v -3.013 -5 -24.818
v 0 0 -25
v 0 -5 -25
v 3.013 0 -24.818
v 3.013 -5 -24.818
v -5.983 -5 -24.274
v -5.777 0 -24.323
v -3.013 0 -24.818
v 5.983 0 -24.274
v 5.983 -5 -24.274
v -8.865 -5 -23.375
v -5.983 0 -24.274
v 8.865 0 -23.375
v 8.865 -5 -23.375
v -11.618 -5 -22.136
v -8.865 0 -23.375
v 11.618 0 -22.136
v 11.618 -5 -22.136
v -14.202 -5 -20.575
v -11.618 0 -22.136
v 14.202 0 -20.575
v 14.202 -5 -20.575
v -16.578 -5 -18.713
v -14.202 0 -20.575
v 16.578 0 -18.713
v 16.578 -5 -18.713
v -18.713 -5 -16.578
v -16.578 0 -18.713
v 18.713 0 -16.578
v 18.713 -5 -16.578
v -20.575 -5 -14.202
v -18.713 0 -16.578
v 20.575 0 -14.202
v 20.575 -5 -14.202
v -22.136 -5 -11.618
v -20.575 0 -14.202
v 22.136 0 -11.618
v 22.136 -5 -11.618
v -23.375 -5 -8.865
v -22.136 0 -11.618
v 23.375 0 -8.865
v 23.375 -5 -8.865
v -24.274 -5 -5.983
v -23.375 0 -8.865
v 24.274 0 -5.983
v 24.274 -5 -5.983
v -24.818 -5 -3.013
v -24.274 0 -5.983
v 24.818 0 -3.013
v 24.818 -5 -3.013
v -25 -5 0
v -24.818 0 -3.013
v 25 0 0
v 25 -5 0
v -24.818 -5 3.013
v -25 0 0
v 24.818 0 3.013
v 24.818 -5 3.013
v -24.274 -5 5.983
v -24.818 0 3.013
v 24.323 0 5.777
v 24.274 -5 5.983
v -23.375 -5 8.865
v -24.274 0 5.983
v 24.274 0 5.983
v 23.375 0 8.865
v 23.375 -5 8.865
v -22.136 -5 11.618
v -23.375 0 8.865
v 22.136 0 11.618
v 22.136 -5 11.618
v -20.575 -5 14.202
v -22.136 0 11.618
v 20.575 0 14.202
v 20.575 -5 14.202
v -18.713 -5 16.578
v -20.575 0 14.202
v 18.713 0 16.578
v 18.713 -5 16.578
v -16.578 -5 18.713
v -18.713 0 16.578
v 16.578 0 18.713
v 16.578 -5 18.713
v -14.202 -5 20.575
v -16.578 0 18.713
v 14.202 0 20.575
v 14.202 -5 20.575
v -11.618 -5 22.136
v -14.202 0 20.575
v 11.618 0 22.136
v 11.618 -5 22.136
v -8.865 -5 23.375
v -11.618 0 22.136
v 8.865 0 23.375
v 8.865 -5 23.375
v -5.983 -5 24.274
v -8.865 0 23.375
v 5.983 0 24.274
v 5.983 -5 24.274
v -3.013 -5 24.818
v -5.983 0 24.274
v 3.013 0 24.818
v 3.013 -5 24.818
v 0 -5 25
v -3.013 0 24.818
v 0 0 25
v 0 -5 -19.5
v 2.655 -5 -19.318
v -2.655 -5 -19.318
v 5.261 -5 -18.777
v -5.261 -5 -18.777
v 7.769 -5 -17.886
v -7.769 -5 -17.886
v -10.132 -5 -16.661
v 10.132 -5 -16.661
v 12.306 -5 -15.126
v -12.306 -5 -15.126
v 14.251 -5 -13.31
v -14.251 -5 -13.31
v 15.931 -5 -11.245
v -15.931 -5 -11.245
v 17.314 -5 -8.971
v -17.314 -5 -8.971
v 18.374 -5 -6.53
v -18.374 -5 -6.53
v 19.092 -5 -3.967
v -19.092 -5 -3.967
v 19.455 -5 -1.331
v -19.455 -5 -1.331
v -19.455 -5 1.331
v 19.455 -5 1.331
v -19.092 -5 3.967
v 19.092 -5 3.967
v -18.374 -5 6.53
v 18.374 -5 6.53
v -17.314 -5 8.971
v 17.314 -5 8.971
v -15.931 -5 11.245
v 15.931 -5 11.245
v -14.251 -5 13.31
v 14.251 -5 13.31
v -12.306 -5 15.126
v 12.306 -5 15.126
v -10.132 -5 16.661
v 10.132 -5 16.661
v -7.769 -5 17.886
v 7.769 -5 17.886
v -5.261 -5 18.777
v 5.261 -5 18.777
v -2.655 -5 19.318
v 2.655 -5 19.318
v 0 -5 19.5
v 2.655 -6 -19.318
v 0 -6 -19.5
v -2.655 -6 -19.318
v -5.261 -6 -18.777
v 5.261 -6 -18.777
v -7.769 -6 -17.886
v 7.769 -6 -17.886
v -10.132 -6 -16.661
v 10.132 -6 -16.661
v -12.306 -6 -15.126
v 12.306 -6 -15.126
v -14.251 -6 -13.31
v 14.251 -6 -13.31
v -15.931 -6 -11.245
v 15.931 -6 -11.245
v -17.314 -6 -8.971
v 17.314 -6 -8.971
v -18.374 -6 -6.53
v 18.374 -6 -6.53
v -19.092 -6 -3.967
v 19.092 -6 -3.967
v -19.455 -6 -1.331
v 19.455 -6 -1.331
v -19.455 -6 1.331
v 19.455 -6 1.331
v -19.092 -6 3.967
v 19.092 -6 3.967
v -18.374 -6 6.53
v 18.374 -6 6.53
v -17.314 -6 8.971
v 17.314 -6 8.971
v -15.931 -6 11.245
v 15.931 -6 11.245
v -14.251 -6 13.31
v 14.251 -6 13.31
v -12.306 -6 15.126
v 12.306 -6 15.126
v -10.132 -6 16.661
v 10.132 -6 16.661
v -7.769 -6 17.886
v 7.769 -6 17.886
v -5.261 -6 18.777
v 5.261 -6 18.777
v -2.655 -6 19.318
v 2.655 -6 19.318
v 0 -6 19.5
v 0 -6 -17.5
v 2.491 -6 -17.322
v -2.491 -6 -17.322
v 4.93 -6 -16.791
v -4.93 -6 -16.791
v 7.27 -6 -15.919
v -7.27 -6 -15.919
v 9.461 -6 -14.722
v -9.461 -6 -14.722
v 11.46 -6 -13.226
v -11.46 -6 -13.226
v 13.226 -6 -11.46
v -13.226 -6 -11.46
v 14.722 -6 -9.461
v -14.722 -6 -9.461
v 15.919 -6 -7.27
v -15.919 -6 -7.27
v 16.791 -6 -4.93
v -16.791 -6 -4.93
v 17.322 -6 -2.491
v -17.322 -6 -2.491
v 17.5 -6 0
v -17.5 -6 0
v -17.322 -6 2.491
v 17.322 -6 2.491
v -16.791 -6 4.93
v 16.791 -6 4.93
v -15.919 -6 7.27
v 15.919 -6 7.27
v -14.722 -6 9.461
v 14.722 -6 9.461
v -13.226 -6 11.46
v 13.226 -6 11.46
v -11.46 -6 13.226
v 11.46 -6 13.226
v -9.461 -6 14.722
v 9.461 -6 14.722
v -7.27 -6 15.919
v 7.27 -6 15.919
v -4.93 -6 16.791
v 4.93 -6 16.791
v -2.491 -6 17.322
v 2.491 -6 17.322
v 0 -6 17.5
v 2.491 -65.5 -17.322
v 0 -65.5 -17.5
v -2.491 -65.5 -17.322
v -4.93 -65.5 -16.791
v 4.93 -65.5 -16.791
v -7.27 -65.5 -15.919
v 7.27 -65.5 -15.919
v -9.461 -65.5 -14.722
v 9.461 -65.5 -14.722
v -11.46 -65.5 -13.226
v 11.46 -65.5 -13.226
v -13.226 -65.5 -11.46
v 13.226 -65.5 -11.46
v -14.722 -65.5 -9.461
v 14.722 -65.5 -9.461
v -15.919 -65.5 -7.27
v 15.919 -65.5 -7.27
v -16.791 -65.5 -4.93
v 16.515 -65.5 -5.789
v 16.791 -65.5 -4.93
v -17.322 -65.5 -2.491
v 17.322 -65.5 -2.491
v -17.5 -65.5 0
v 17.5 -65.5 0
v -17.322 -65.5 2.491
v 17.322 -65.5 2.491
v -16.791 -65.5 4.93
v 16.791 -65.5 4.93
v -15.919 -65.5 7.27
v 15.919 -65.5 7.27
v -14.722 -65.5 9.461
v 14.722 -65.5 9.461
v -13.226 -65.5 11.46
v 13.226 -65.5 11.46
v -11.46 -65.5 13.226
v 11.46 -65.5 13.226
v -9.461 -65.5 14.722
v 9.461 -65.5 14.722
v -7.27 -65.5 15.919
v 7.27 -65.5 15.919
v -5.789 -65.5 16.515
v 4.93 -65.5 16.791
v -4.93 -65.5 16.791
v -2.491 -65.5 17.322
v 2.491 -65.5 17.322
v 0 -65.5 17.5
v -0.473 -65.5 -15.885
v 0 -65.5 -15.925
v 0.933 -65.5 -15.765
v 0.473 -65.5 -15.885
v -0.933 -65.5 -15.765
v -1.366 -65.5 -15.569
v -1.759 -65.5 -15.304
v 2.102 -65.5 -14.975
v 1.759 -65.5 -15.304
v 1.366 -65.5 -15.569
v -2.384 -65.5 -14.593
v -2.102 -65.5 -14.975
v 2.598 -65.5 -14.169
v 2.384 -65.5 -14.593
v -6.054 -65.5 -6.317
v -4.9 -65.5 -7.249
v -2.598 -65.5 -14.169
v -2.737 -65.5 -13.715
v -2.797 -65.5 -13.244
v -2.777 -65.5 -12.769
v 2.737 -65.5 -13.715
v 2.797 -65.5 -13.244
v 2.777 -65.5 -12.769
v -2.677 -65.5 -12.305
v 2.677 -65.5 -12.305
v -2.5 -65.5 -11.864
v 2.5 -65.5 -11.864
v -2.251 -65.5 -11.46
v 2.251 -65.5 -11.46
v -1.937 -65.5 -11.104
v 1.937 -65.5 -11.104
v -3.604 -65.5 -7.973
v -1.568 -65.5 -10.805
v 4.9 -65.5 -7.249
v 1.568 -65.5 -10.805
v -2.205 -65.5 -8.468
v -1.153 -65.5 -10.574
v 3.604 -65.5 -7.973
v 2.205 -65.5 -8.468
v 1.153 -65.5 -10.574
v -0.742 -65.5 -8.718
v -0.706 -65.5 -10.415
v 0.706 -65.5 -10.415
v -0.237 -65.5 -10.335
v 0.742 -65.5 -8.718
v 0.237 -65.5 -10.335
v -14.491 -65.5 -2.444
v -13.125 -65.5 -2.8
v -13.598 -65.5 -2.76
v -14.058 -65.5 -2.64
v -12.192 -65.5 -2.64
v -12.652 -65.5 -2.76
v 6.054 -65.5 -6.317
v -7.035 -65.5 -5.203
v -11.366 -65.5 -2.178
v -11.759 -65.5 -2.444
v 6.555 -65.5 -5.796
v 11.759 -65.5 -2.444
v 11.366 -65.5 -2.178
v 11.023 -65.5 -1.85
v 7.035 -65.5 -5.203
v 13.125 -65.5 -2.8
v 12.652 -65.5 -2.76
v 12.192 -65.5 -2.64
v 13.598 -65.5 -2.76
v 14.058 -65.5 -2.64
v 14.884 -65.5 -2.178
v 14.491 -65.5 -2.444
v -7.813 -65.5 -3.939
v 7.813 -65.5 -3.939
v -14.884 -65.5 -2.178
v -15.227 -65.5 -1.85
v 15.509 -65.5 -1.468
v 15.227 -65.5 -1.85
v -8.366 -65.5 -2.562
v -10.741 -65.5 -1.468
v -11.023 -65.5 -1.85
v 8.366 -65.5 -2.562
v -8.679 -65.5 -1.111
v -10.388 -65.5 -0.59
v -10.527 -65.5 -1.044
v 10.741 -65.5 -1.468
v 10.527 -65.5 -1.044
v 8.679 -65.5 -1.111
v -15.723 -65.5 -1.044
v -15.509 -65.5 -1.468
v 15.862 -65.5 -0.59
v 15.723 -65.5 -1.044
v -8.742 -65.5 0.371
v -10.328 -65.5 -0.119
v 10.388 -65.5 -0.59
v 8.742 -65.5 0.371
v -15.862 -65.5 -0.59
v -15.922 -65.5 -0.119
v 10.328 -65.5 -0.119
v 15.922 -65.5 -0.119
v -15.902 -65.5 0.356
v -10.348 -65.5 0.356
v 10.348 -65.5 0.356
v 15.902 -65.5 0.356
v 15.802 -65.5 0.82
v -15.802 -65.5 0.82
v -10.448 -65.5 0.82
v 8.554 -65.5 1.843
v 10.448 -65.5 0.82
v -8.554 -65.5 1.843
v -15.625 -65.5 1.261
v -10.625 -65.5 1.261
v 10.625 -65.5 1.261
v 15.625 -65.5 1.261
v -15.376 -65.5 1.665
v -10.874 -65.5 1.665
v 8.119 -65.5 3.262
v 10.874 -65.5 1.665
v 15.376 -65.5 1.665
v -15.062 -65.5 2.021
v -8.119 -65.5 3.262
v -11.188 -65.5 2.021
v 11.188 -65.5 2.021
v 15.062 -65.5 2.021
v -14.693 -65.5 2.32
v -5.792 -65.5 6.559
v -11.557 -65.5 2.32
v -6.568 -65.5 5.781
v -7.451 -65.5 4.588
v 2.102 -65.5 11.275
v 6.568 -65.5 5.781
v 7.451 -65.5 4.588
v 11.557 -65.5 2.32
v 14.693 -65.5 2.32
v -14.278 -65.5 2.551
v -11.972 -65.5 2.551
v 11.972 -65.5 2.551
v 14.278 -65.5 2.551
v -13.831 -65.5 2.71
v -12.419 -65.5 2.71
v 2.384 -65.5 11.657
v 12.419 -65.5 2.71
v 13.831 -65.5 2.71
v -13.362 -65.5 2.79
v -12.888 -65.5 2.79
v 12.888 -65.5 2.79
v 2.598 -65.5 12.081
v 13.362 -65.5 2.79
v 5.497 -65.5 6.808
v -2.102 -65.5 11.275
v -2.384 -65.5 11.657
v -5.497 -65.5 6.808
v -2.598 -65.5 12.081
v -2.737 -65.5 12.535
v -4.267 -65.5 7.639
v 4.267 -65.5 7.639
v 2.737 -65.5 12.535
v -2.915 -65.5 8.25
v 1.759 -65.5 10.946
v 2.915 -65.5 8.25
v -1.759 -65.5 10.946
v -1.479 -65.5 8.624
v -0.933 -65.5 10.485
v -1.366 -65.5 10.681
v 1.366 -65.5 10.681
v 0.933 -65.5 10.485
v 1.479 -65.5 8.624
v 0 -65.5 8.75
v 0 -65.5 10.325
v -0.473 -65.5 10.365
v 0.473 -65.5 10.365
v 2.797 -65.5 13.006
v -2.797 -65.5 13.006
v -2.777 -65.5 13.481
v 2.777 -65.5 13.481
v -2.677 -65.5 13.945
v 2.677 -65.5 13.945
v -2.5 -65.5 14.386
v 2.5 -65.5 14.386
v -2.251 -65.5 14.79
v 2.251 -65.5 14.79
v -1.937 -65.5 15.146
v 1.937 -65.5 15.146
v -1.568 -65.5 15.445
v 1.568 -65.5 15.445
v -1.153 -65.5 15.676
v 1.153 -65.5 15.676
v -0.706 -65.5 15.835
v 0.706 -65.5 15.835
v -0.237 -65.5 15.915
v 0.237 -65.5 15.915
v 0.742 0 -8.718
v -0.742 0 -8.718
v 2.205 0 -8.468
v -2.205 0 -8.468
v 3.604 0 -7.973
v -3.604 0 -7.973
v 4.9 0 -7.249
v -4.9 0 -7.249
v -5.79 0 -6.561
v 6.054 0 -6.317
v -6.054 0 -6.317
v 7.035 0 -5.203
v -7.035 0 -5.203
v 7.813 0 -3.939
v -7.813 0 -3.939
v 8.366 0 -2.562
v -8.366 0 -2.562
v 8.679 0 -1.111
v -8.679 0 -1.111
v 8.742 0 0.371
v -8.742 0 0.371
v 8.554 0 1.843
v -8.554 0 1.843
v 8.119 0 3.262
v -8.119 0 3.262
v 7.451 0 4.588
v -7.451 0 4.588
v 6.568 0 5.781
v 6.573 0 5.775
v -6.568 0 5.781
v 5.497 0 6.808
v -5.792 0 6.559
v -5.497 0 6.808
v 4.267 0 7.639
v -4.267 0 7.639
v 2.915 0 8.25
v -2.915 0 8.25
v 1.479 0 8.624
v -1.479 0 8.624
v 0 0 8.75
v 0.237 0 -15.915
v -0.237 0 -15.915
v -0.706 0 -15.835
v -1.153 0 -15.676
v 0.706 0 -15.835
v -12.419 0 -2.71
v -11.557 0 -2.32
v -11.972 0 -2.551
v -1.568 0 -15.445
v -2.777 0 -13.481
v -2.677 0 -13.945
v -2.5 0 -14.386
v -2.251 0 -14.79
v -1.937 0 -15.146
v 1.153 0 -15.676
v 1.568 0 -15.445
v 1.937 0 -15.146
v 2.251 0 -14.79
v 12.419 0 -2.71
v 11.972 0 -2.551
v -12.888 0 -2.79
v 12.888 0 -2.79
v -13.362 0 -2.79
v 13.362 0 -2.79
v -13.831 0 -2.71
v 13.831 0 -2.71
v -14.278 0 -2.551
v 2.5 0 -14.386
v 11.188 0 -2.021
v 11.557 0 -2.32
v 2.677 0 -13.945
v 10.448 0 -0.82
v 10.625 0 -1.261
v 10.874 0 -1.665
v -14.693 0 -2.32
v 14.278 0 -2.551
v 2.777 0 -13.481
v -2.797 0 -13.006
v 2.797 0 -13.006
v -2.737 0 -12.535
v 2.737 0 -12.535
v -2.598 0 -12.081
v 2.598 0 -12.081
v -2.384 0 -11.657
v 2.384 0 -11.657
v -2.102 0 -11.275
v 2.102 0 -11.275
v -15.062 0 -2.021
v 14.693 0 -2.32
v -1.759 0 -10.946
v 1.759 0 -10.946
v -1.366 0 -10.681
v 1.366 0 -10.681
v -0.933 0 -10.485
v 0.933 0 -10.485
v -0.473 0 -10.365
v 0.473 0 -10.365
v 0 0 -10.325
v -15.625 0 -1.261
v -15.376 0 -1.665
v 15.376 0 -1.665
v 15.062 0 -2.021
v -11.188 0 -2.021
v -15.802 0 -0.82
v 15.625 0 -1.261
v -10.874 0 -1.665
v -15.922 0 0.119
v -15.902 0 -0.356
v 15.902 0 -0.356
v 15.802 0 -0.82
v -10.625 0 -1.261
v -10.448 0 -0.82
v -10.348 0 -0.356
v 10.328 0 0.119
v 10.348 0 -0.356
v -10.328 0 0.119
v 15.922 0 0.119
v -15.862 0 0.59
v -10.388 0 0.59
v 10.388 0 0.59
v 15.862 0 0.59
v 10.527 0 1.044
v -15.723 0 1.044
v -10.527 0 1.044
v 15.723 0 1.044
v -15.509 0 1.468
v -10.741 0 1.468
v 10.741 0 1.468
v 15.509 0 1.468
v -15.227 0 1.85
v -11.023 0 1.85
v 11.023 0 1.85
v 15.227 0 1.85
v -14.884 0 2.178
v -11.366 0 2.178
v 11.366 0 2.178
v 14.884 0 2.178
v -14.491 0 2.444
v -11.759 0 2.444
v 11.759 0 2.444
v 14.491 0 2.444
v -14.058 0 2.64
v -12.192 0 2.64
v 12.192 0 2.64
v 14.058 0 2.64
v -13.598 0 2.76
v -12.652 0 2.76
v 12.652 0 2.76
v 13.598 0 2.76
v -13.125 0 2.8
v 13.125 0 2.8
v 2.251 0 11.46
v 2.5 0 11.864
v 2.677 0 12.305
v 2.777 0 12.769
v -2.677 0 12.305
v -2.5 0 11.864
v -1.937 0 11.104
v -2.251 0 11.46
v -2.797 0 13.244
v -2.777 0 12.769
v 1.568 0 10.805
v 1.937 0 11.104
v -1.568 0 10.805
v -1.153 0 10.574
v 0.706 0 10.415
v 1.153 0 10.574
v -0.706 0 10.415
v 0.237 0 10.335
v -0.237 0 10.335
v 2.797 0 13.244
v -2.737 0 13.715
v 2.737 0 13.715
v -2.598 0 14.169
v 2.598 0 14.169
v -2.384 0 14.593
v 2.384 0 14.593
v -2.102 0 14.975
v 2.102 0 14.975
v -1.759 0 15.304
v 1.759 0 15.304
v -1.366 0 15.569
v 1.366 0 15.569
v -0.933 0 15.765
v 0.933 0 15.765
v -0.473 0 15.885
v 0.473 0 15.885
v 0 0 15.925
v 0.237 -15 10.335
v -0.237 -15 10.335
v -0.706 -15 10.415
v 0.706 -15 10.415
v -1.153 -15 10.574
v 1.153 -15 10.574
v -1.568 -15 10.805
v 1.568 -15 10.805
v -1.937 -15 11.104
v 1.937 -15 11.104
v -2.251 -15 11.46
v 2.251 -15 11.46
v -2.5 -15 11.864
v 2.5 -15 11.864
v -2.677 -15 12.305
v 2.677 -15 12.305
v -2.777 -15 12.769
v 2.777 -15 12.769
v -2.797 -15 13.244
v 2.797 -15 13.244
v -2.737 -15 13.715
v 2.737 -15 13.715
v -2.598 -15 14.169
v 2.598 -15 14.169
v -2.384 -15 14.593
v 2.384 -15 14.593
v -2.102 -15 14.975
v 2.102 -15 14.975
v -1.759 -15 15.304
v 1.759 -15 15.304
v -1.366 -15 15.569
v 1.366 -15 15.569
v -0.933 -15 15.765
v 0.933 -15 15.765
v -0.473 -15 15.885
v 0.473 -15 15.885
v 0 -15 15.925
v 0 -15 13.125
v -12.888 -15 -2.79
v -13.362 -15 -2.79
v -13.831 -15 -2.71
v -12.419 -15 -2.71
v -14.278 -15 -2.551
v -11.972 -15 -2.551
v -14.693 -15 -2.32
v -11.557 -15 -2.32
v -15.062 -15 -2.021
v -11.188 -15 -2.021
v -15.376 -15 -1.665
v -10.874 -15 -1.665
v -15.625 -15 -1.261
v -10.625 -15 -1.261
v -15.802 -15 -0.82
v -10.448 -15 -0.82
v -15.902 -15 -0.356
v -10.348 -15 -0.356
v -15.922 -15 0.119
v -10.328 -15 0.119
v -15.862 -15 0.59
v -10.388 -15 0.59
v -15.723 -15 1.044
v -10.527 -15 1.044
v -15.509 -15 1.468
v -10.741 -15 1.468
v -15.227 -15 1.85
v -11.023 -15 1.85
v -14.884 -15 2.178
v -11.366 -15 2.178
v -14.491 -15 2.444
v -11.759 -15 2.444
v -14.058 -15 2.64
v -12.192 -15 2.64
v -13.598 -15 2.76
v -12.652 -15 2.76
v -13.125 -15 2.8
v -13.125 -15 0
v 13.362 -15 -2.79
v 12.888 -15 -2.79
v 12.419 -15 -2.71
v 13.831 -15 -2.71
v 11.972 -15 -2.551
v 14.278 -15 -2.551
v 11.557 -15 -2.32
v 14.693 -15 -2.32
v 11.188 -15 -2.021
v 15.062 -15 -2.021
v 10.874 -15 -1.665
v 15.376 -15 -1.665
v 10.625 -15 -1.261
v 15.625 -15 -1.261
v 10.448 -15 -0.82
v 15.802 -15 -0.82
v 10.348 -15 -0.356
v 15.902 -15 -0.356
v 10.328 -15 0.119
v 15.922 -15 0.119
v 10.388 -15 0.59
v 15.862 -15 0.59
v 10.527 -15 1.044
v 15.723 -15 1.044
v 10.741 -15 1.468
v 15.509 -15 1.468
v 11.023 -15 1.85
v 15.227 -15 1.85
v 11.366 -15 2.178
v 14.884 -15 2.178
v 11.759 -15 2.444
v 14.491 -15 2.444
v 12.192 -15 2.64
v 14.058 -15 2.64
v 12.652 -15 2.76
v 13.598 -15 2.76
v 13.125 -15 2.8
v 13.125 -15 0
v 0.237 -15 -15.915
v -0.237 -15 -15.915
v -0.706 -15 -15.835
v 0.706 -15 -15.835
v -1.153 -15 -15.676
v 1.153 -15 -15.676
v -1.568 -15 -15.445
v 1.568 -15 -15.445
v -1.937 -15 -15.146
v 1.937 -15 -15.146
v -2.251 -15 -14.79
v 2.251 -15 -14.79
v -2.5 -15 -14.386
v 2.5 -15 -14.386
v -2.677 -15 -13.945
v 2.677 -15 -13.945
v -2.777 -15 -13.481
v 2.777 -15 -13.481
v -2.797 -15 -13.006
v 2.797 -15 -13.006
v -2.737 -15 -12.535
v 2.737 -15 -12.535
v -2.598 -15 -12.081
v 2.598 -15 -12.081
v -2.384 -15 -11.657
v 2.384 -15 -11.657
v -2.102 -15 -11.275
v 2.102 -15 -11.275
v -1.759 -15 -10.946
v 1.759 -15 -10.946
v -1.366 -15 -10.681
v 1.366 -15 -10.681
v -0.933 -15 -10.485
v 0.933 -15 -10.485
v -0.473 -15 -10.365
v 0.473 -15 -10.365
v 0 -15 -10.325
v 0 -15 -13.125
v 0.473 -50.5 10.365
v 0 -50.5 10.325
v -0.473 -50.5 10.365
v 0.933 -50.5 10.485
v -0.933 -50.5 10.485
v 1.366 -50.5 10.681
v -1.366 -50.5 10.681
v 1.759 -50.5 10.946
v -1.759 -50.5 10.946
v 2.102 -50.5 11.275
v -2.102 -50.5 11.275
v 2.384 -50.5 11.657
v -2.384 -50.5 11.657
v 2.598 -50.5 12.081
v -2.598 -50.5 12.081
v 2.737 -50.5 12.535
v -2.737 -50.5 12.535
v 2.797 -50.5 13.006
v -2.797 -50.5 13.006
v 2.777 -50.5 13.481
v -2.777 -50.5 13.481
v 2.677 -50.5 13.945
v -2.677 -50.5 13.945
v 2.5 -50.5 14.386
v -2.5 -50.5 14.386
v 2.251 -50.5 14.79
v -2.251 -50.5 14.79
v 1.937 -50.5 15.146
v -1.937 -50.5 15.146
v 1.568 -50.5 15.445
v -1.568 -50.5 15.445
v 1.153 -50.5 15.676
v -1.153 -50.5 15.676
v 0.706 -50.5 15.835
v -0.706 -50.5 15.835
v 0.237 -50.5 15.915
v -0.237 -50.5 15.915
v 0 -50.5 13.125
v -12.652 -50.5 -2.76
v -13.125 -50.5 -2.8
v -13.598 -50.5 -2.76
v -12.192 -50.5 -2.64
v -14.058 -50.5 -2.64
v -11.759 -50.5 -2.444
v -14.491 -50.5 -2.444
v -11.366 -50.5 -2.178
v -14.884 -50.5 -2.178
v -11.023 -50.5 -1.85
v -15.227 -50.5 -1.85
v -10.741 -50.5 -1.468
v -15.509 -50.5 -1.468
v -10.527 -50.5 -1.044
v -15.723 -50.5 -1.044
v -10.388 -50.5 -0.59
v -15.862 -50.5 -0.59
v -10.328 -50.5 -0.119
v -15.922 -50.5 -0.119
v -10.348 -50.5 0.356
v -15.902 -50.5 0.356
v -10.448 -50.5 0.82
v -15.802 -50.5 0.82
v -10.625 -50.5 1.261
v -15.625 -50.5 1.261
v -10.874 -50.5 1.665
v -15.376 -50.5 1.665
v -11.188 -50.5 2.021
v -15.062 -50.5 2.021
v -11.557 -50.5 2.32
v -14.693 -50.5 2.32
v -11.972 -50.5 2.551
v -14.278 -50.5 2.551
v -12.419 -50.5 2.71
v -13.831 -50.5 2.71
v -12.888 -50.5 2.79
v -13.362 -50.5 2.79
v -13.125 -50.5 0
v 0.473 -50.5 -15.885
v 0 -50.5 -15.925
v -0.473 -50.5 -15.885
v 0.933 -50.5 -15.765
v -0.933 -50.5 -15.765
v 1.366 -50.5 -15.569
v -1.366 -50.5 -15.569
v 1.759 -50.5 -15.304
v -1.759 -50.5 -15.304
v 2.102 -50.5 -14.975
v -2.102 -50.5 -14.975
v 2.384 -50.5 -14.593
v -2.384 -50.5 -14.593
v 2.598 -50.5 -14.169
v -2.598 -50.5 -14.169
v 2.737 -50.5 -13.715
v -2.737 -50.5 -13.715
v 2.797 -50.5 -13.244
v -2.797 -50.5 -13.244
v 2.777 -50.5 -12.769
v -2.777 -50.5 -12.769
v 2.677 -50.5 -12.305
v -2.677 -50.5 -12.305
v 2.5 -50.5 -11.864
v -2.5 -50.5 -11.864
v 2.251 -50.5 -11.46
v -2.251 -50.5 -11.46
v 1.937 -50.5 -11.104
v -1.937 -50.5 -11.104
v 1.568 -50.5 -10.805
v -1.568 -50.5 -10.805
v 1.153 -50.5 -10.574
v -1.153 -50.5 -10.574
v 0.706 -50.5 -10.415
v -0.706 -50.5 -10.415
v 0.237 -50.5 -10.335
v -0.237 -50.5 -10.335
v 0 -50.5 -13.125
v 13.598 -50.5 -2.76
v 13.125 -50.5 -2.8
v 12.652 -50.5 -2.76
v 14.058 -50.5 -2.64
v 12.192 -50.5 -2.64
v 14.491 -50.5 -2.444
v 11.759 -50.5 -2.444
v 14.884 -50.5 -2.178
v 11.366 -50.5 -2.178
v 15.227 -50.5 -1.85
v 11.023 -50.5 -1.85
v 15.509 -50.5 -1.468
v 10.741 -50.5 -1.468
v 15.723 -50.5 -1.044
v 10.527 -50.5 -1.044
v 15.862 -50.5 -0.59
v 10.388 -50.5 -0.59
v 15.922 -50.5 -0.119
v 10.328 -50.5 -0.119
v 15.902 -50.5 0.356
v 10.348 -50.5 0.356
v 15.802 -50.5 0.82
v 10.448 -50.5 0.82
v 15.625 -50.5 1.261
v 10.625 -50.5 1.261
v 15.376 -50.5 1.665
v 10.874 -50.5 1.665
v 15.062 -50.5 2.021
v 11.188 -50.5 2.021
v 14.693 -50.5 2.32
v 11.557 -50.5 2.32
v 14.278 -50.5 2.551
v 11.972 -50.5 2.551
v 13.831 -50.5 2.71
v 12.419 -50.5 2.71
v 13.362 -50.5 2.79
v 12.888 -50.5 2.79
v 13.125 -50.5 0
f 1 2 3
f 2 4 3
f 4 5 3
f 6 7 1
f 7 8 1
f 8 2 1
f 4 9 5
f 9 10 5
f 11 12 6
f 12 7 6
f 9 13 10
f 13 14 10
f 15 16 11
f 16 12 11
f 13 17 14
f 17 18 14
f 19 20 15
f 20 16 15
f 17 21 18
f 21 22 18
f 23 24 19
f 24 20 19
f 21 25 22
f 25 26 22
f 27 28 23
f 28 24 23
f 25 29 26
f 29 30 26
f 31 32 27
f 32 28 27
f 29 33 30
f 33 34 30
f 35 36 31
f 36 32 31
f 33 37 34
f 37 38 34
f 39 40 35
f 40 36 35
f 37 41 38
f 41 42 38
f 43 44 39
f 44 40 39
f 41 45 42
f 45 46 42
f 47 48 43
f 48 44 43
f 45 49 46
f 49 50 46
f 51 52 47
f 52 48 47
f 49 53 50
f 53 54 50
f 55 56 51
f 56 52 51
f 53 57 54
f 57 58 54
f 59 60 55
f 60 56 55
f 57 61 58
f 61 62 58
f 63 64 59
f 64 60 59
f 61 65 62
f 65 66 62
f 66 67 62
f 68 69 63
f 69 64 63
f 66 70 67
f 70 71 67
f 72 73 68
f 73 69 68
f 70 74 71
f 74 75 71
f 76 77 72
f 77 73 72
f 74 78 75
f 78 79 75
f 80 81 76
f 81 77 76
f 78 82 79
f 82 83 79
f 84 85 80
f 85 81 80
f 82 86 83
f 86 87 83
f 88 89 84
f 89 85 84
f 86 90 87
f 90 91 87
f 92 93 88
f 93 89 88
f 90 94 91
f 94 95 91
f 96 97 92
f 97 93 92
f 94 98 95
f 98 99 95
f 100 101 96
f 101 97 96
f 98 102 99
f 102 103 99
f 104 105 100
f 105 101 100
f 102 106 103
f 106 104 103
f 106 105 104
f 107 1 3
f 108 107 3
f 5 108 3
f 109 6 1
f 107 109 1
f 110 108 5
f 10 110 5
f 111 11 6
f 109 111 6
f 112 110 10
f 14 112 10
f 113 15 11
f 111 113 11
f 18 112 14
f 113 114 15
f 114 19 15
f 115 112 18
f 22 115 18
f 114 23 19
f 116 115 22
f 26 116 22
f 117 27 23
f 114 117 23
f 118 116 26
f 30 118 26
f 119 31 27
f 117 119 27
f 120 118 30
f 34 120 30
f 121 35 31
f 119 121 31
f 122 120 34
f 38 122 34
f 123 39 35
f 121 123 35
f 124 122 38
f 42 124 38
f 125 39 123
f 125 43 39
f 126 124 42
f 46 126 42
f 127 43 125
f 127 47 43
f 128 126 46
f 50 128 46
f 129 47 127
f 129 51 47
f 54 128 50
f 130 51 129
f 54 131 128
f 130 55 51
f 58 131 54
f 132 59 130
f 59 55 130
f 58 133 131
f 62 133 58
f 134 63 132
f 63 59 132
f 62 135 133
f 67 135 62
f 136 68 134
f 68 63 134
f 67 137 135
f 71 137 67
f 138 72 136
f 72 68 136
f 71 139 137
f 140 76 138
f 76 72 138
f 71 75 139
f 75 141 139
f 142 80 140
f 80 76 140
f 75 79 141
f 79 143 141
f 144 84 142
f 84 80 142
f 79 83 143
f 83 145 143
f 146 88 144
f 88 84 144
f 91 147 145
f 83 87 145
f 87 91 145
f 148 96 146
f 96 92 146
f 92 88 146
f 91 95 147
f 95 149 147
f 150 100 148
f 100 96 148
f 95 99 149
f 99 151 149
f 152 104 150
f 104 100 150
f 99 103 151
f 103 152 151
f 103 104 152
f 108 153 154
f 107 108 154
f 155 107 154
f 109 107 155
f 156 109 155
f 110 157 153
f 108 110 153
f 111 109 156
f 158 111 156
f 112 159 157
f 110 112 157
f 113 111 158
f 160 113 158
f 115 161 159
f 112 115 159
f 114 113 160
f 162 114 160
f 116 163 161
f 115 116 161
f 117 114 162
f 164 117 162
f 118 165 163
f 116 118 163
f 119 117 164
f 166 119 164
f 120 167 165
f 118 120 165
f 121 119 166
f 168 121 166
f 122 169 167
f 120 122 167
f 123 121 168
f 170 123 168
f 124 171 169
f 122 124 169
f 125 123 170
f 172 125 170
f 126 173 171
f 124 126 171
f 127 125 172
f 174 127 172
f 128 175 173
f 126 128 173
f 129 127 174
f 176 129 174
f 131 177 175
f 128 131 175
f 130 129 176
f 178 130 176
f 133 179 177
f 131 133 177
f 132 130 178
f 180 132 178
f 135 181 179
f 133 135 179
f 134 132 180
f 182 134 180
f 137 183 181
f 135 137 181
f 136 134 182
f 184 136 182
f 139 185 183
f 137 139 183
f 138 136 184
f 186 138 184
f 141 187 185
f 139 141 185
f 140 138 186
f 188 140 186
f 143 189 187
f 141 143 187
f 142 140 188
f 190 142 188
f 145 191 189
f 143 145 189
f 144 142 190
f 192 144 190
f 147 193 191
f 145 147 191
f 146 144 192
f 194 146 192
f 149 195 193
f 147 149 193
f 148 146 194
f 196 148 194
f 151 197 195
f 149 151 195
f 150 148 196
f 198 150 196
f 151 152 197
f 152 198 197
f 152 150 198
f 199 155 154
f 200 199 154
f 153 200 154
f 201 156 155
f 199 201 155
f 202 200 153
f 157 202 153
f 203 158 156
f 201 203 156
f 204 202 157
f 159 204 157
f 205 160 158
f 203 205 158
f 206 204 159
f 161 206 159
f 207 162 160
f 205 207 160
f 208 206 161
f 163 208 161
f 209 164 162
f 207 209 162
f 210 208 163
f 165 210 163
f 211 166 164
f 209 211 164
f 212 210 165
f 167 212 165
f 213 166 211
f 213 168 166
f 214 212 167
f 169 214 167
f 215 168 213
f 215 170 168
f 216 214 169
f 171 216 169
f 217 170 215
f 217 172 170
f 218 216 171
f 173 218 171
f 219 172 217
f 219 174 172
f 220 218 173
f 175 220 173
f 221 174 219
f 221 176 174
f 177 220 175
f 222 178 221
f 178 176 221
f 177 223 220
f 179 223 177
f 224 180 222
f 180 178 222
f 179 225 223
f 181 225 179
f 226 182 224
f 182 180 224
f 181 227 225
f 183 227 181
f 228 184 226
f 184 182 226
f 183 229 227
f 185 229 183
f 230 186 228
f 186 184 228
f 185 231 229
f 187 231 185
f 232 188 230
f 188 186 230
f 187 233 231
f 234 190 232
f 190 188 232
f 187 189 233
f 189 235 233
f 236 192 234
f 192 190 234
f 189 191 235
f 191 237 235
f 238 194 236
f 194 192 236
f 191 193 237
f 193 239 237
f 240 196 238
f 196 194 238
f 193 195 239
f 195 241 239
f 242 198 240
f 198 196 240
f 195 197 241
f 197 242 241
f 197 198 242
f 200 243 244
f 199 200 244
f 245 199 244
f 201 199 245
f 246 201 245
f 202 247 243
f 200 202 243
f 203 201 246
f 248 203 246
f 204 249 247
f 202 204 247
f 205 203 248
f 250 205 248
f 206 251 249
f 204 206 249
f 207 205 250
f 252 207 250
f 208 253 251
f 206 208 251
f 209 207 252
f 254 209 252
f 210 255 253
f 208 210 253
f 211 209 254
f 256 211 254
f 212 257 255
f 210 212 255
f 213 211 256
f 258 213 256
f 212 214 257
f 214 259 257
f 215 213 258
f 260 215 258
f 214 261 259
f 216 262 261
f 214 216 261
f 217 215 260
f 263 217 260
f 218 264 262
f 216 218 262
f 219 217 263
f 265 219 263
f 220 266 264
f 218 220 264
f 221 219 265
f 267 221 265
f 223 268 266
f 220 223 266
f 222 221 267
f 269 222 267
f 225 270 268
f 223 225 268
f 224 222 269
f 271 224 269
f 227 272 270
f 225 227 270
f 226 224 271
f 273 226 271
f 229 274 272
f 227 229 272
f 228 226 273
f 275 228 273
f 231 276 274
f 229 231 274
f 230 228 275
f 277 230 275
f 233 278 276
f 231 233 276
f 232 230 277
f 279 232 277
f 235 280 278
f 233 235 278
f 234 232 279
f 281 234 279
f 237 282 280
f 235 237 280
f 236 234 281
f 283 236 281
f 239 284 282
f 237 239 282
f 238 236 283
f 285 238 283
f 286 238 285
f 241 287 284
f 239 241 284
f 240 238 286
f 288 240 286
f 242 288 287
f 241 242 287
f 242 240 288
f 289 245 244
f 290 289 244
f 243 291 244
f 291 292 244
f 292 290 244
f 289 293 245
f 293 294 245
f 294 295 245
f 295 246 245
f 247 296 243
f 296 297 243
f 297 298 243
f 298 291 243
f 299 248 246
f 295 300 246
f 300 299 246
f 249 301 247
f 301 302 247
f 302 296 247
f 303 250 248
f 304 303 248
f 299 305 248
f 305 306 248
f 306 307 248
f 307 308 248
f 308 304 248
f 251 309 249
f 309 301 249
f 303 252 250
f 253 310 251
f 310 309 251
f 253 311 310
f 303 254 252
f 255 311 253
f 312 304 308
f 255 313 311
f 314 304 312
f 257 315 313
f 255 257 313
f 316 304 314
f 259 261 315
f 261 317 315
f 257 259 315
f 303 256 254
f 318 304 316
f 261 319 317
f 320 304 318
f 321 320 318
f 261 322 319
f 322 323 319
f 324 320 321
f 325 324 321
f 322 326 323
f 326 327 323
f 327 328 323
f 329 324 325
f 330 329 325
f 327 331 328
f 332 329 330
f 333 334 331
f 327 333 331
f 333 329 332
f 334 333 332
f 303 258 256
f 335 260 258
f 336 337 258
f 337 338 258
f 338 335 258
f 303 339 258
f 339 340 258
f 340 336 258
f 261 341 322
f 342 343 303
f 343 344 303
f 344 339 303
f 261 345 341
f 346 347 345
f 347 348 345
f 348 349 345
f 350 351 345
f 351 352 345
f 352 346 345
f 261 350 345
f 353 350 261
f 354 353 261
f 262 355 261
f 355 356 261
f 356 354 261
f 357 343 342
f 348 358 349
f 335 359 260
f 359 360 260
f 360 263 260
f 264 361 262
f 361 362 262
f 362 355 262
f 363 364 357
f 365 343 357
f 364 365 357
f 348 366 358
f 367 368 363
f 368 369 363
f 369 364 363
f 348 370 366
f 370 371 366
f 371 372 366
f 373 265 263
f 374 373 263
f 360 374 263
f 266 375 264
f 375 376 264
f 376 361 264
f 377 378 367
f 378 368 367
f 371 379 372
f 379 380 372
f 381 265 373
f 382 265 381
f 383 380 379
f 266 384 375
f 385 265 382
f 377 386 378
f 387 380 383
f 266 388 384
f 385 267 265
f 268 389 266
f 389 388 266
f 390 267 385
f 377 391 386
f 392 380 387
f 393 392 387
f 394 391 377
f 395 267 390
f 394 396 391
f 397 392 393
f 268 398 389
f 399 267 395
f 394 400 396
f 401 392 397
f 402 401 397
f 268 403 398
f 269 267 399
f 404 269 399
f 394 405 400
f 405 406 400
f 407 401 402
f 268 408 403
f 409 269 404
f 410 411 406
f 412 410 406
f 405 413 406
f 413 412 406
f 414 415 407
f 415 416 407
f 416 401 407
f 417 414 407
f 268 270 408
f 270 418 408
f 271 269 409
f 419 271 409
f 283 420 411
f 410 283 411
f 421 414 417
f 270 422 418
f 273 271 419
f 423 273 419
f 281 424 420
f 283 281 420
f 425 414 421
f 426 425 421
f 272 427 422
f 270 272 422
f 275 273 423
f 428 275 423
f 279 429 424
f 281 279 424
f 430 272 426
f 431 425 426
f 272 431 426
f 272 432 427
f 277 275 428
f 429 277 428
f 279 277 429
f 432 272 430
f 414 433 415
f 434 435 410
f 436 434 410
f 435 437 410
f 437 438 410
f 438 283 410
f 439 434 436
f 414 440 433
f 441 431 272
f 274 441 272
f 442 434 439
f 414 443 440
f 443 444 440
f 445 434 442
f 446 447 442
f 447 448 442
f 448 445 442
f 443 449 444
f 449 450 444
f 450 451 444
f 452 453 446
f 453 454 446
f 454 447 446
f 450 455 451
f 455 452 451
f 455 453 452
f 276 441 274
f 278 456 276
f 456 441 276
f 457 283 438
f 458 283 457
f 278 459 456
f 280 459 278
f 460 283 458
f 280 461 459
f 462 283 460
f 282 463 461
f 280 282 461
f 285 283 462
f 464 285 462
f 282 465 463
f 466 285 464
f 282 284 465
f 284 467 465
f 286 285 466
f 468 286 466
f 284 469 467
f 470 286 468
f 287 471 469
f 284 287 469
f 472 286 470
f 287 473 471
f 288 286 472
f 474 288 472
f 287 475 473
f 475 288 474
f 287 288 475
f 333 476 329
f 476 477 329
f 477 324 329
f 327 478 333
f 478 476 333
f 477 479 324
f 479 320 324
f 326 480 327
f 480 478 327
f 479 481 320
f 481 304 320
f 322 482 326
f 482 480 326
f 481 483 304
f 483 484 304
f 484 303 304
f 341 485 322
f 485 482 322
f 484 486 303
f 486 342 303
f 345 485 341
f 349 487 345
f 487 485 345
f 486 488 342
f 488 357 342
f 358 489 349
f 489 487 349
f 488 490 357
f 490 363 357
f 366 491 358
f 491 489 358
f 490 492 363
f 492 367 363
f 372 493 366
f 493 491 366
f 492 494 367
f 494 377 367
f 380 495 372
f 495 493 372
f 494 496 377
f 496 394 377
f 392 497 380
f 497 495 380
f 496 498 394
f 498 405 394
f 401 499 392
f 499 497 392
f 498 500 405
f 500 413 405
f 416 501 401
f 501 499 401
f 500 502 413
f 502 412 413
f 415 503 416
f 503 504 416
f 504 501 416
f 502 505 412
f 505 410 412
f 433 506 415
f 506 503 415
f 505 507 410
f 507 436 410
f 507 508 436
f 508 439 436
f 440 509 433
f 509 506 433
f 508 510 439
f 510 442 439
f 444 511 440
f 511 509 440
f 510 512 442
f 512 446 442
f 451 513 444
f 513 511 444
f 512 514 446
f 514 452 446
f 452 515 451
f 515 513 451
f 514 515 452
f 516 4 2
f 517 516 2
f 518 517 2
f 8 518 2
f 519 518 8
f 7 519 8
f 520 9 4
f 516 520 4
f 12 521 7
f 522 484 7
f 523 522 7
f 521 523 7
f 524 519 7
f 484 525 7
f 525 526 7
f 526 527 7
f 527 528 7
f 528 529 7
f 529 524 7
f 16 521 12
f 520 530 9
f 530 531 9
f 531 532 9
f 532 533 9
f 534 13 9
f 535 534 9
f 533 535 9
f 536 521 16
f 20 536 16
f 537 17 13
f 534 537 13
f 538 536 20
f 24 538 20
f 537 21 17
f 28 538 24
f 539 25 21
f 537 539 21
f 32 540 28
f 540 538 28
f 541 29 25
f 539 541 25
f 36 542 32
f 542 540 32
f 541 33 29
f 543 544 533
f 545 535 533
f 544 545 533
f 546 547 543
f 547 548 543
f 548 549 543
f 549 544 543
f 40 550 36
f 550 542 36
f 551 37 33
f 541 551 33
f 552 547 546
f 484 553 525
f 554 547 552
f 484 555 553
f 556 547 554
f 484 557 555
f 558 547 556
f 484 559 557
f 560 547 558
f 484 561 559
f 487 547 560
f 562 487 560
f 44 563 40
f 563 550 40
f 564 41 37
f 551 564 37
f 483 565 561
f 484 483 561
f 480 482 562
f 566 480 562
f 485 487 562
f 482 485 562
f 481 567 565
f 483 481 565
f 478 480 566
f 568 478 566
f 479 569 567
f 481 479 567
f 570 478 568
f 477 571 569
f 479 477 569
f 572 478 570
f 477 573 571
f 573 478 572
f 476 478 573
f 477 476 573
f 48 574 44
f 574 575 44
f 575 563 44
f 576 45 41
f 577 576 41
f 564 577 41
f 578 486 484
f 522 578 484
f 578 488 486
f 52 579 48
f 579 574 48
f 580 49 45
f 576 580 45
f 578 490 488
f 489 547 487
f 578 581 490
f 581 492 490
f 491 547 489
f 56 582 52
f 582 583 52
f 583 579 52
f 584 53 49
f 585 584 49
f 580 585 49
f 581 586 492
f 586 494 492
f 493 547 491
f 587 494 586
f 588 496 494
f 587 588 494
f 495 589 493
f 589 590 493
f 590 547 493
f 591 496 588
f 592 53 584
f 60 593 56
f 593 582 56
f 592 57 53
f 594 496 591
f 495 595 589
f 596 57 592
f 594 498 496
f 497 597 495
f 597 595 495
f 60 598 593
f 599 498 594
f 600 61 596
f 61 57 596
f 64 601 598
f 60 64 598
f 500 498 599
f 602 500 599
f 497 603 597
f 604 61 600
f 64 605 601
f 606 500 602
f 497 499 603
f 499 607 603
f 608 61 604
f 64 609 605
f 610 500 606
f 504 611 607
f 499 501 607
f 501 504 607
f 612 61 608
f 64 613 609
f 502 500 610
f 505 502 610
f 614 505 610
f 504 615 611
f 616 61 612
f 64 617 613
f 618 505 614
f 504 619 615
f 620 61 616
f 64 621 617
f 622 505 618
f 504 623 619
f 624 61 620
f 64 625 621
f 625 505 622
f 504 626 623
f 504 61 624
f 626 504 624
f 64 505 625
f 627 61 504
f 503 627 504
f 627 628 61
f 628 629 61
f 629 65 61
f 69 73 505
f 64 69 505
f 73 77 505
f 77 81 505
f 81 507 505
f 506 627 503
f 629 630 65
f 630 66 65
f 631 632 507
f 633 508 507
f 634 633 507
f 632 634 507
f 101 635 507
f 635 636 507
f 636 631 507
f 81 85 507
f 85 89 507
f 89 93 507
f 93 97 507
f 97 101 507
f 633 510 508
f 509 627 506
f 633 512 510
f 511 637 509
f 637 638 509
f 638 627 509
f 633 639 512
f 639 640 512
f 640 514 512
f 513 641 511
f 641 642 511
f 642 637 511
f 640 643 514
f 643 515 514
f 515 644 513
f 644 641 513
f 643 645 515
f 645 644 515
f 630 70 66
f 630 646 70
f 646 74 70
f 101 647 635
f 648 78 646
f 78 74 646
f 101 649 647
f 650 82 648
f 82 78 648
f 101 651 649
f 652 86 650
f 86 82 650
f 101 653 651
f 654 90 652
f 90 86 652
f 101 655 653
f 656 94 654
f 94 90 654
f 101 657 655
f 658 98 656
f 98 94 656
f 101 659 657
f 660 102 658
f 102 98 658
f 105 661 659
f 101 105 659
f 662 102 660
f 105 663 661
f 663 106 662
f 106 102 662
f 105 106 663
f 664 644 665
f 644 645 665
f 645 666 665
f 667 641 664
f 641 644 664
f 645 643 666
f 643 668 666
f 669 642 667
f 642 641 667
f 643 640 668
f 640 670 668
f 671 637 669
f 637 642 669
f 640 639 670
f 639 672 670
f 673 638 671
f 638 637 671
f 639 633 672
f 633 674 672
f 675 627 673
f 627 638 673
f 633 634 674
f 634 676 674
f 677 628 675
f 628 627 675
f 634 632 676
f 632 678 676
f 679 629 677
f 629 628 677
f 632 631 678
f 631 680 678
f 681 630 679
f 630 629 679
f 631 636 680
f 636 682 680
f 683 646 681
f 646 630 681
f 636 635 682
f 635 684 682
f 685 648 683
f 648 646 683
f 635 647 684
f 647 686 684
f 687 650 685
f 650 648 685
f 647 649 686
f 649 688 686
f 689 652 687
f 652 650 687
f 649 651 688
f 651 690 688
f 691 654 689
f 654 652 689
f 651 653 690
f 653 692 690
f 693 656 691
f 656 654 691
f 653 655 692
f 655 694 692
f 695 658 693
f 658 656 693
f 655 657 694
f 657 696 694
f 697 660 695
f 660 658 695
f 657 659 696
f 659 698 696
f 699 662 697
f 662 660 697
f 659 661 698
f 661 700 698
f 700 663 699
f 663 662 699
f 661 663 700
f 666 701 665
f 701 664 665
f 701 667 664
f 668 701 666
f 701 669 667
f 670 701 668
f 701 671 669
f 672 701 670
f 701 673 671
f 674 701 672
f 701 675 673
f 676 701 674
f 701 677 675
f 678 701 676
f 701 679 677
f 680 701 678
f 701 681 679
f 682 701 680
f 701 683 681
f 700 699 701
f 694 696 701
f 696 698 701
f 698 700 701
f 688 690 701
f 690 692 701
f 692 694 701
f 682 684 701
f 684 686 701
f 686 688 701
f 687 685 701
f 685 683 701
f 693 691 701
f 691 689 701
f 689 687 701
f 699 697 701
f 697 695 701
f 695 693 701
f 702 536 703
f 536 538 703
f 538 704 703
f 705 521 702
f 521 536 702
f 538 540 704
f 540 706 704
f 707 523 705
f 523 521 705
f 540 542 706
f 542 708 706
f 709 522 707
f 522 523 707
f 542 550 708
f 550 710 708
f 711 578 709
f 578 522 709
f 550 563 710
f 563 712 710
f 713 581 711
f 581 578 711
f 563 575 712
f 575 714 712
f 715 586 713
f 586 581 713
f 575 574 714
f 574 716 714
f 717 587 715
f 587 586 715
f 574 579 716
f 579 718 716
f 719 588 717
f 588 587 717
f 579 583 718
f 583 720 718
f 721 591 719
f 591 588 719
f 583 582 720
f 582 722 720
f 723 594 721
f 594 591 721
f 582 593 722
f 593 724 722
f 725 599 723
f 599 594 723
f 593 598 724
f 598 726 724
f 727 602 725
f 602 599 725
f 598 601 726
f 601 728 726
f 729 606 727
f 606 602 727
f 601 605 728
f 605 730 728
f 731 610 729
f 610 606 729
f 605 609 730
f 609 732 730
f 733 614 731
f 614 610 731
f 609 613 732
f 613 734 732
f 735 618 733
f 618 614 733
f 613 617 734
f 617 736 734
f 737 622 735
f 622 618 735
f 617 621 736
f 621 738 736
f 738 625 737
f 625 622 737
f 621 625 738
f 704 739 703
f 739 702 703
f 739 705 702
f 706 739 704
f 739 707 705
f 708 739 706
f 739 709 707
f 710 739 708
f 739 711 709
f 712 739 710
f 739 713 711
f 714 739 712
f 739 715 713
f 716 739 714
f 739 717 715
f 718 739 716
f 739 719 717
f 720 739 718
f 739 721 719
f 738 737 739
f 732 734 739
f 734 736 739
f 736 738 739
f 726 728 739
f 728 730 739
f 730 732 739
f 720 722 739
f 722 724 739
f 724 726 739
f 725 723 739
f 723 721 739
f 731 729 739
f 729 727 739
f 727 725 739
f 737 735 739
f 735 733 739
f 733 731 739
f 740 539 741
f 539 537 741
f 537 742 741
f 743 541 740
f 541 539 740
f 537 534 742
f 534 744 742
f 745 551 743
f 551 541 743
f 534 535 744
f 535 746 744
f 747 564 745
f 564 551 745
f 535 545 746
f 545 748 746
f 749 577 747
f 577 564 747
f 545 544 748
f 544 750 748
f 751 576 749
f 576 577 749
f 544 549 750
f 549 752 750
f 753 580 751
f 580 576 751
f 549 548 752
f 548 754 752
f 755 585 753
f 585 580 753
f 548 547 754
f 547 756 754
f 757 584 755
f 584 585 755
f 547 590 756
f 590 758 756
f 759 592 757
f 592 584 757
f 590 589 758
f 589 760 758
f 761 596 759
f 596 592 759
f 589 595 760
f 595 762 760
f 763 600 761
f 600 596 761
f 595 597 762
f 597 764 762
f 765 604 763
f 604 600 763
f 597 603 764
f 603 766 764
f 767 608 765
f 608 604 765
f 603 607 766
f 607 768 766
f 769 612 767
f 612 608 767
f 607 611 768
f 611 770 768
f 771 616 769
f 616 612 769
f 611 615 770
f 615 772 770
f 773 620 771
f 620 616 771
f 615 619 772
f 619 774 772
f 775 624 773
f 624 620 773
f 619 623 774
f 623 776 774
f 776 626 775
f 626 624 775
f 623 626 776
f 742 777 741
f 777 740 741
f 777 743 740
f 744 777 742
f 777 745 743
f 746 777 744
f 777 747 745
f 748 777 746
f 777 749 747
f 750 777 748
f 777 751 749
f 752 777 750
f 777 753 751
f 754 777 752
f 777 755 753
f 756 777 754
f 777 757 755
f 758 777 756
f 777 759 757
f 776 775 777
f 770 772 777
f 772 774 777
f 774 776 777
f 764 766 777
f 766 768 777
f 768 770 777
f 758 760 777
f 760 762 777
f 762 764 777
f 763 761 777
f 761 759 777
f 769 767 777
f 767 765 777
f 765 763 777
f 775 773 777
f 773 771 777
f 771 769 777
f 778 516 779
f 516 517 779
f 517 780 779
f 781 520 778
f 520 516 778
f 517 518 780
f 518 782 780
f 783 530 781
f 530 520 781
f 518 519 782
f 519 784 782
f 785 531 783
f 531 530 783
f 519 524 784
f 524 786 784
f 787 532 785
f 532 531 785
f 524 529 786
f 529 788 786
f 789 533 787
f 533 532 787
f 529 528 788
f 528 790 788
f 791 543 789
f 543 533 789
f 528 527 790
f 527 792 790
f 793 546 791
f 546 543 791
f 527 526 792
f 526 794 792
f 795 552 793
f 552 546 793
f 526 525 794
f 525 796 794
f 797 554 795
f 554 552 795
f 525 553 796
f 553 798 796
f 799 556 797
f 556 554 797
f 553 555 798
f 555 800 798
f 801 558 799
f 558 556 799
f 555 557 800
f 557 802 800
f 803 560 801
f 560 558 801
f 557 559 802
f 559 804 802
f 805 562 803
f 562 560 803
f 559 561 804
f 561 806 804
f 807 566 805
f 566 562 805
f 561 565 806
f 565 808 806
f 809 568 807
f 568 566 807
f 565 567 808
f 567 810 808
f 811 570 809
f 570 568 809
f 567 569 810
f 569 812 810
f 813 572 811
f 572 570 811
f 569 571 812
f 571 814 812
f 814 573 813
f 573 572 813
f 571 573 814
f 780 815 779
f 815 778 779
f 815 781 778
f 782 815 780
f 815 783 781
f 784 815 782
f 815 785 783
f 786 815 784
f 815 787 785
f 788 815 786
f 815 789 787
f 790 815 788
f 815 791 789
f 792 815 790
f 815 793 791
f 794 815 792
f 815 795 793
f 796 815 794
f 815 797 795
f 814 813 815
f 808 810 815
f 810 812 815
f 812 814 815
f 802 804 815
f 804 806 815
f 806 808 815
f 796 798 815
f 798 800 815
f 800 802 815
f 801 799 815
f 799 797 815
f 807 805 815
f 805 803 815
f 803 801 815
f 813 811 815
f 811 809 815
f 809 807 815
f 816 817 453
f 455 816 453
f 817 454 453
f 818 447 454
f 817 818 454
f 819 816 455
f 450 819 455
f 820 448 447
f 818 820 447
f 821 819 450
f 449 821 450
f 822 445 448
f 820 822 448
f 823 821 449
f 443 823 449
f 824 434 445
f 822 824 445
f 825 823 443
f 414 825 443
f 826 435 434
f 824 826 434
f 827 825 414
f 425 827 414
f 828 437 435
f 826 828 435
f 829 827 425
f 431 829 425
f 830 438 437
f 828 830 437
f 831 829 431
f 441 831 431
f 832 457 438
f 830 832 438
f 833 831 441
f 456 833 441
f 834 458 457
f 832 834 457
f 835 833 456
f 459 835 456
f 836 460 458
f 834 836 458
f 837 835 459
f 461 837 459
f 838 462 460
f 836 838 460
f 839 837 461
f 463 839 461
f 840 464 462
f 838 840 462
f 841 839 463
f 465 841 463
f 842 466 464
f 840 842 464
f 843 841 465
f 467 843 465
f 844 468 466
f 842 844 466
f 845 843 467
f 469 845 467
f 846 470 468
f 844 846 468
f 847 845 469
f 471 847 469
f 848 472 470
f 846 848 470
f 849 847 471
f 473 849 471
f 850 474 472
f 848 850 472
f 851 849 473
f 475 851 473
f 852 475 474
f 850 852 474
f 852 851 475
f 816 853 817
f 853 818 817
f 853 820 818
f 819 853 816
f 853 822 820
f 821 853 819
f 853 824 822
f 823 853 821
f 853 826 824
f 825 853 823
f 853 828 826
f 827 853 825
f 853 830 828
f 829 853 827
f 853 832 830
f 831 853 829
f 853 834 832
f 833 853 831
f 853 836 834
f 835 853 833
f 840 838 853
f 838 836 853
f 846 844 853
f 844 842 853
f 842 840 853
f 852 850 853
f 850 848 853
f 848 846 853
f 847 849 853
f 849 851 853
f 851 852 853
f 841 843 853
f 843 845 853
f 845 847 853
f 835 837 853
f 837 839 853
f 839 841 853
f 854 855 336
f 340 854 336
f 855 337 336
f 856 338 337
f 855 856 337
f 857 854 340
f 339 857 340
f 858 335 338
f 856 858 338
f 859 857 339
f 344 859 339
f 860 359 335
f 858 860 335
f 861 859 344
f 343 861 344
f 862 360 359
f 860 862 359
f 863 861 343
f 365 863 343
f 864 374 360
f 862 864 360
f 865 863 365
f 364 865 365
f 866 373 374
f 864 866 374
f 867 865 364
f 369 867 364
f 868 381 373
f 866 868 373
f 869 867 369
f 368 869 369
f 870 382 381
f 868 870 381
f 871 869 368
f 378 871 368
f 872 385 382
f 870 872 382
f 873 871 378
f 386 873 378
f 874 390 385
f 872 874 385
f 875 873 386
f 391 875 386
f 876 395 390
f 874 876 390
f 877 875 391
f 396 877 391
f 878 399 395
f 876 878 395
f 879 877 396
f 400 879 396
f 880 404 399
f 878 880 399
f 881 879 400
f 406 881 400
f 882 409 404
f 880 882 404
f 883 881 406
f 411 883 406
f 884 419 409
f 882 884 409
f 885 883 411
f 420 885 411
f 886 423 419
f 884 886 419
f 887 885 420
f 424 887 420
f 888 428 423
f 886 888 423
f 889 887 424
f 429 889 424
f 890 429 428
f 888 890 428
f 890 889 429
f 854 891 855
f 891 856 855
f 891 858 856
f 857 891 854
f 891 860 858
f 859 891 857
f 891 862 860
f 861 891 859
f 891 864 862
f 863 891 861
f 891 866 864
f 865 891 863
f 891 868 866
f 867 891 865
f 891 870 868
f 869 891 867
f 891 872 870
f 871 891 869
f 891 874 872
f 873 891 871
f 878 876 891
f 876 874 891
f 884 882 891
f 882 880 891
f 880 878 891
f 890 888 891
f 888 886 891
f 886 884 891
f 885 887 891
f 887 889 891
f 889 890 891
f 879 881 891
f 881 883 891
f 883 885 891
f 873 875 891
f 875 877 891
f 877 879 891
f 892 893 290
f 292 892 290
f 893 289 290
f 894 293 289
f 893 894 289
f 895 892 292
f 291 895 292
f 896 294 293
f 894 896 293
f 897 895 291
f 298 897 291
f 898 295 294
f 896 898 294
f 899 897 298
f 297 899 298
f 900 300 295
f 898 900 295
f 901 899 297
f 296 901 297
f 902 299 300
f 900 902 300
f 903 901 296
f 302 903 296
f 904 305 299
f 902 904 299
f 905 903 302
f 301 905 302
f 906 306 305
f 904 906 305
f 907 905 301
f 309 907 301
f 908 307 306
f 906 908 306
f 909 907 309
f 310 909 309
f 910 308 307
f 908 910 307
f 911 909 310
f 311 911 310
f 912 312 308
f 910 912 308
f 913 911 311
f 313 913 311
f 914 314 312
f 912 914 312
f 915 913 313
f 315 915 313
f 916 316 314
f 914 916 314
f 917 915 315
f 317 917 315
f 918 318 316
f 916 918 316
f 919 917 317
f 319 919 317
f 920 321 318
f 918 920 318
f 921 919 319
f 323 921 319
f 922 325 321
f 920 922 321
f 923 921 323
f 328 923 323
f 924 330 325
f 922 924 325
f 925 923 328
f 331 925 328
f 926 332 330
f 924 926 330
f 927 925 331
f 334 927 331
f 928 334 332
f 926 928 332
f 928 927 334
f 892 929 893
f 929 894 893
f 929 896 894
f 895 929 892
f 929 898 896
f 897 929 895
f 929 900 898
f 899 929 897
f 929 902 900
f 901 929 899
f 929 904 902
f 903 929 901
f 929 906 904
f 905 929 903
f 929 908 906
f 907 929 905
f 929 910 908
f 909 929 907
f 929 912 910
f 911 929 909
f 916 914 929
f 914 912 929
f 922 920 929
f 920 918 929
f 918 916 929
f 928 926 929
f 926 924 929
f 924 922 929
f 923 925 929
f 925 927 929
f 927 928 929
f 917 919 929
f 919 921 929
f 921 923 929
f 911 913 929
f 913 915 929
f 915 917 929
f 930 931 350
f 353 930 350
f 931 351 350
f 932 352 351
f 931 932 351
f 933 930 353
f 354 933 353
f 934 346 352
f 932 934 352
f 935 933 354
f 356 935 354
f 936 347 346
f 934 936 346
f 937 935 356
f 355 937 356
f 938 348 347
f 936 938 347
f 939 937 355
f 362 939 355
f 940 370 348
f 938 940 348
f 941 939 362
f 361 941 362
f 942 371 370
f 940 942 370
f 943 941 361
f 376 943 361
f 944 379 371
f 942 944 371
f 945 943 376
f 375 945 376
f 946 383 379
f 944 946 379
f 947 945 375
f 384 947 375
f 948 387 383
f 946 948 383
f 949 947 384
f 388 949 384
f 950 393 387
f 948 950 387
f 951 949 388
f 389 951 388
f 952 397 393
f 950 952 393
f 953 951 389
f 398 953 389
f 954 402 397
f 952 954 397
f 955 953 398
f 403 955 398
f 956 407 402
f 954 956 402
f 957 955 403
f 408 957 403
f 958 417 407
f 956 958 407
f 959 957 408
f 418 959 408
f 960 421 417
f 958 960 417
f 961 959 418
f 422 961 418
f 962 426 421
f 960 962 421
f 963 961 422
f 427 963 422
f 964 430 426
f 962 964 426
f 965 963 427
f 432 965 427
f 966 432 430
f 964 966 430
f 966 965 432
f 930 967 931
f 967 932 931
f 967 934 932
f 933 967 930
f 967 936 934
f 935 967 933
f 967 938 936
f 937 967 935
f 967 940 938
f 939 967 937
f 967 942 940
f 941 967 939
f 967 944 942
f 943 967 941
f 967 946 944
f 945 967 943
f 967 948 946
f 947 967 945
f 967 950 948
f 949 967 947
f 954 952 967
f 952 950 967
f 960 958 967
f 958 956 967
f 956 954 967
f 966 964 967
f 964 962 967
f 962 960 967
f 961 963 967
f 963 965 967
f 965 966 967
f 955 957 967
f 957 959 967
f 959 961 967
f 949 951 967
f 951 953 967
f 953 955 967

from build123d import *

# Parameters (mm, degrees)
SKIZZE5_R                       = 2.8
SCHNITT_LINEAR_AUSTRAGEN1_DEPTH = 15
SCHNITT_LINEAR_START            = -15
SKIZZE7_R                       = 2.8
SCHNITT_LINEAR_AUSTRAGEN2_DEPTH = 15


with BuildPart() as part:
    # Skizze4 → Rotation1 (revolve)
    with BuildSketch(Plane(origin=(0, 0, 0), x_dir=(0, 0, -1), z_dir=(1, 0, 0)), mode=Mode.PRIVATE) as rotation1_sk:
        Polygon((8.75, 0), (25, 0), (25, -5), (19.5, -5), (19.5, -6), (17.5, -6), (17.5, -65.5), (8.75, -65.5), align=None)
    revolve(rotation1_sk.sketch.rotate(Axis((0, 0, 0), (0, -1, 0)), 180), axis=Axis((0, 0, 0), (0, -1, 0)))

    # Skizze5 → Schnitt-Linear austragen1 (cut)
    with BuildSketch(Plane(origin=(0, 0, 0), x_dir=(1, 0, 0), z_dir=(0, 1, 0))):
        with Locations(Location((0, 13.125, 0), (0, 0, 270))):
            Circle(SKIZZE5_R)
        with Locations(Location((13.125, 0, 0), (0, 0, 270))):
            Circle(SKIZZE5_R)
        with Locations(Location((0, -13.125, 0), (0, 0, 270))):
            Circle(SKIZZE5_R)
        with Locations(Location((-13.125, 0, 0), (0, 0, 270))):
            Circle(SKIZZE5_R)
    extrude(amount=-SCHNITT_LINEAR_AUSTRAGEN1_DEPTH, mode=Mode.SUBTRACT)

    # Skizze7 → Schnitt-Linear austragen2 (cut)
    with BuildSketch(Plane.XZ.offset(65.5).offset(SCHNITT_LINEAR_START)):
        with Locations(Location((13.125, 0, 0), (0, 0, 90))):
            Circle(SKIZZE7_R)
        with Locations(Location((0, -13.125, 0), (0, 0, 90))):
            Circle(SKIZZE7_R)
        with Locations(Location((-13.125, 0, 0), (0, 0, 90))):
            Circle(SKIZZE7_R)
        with BuildLine():
            ThreePointArc((0, 15.925), (-2.8, 13.125), (0, 10.325))
            Line((0, 10.325), (0, 15.925))
        make_face()
        with BuildLine():
            Line((0, 15.925), (0, 10.325))
            ThreePointArc((0, 10.325), (1.979898987, 11.145101013), (2.8, 13.125))
            ThreePointArc((2.8, 13.125), (1.979898987, 15.104898987), (0, 15.925))
        make_face()
    extrude(amount=SCHNITT_LINEAR_AUSTRAGEN2_DEPTH, mode=Mode.SUBTRACT)


solid = part.part
